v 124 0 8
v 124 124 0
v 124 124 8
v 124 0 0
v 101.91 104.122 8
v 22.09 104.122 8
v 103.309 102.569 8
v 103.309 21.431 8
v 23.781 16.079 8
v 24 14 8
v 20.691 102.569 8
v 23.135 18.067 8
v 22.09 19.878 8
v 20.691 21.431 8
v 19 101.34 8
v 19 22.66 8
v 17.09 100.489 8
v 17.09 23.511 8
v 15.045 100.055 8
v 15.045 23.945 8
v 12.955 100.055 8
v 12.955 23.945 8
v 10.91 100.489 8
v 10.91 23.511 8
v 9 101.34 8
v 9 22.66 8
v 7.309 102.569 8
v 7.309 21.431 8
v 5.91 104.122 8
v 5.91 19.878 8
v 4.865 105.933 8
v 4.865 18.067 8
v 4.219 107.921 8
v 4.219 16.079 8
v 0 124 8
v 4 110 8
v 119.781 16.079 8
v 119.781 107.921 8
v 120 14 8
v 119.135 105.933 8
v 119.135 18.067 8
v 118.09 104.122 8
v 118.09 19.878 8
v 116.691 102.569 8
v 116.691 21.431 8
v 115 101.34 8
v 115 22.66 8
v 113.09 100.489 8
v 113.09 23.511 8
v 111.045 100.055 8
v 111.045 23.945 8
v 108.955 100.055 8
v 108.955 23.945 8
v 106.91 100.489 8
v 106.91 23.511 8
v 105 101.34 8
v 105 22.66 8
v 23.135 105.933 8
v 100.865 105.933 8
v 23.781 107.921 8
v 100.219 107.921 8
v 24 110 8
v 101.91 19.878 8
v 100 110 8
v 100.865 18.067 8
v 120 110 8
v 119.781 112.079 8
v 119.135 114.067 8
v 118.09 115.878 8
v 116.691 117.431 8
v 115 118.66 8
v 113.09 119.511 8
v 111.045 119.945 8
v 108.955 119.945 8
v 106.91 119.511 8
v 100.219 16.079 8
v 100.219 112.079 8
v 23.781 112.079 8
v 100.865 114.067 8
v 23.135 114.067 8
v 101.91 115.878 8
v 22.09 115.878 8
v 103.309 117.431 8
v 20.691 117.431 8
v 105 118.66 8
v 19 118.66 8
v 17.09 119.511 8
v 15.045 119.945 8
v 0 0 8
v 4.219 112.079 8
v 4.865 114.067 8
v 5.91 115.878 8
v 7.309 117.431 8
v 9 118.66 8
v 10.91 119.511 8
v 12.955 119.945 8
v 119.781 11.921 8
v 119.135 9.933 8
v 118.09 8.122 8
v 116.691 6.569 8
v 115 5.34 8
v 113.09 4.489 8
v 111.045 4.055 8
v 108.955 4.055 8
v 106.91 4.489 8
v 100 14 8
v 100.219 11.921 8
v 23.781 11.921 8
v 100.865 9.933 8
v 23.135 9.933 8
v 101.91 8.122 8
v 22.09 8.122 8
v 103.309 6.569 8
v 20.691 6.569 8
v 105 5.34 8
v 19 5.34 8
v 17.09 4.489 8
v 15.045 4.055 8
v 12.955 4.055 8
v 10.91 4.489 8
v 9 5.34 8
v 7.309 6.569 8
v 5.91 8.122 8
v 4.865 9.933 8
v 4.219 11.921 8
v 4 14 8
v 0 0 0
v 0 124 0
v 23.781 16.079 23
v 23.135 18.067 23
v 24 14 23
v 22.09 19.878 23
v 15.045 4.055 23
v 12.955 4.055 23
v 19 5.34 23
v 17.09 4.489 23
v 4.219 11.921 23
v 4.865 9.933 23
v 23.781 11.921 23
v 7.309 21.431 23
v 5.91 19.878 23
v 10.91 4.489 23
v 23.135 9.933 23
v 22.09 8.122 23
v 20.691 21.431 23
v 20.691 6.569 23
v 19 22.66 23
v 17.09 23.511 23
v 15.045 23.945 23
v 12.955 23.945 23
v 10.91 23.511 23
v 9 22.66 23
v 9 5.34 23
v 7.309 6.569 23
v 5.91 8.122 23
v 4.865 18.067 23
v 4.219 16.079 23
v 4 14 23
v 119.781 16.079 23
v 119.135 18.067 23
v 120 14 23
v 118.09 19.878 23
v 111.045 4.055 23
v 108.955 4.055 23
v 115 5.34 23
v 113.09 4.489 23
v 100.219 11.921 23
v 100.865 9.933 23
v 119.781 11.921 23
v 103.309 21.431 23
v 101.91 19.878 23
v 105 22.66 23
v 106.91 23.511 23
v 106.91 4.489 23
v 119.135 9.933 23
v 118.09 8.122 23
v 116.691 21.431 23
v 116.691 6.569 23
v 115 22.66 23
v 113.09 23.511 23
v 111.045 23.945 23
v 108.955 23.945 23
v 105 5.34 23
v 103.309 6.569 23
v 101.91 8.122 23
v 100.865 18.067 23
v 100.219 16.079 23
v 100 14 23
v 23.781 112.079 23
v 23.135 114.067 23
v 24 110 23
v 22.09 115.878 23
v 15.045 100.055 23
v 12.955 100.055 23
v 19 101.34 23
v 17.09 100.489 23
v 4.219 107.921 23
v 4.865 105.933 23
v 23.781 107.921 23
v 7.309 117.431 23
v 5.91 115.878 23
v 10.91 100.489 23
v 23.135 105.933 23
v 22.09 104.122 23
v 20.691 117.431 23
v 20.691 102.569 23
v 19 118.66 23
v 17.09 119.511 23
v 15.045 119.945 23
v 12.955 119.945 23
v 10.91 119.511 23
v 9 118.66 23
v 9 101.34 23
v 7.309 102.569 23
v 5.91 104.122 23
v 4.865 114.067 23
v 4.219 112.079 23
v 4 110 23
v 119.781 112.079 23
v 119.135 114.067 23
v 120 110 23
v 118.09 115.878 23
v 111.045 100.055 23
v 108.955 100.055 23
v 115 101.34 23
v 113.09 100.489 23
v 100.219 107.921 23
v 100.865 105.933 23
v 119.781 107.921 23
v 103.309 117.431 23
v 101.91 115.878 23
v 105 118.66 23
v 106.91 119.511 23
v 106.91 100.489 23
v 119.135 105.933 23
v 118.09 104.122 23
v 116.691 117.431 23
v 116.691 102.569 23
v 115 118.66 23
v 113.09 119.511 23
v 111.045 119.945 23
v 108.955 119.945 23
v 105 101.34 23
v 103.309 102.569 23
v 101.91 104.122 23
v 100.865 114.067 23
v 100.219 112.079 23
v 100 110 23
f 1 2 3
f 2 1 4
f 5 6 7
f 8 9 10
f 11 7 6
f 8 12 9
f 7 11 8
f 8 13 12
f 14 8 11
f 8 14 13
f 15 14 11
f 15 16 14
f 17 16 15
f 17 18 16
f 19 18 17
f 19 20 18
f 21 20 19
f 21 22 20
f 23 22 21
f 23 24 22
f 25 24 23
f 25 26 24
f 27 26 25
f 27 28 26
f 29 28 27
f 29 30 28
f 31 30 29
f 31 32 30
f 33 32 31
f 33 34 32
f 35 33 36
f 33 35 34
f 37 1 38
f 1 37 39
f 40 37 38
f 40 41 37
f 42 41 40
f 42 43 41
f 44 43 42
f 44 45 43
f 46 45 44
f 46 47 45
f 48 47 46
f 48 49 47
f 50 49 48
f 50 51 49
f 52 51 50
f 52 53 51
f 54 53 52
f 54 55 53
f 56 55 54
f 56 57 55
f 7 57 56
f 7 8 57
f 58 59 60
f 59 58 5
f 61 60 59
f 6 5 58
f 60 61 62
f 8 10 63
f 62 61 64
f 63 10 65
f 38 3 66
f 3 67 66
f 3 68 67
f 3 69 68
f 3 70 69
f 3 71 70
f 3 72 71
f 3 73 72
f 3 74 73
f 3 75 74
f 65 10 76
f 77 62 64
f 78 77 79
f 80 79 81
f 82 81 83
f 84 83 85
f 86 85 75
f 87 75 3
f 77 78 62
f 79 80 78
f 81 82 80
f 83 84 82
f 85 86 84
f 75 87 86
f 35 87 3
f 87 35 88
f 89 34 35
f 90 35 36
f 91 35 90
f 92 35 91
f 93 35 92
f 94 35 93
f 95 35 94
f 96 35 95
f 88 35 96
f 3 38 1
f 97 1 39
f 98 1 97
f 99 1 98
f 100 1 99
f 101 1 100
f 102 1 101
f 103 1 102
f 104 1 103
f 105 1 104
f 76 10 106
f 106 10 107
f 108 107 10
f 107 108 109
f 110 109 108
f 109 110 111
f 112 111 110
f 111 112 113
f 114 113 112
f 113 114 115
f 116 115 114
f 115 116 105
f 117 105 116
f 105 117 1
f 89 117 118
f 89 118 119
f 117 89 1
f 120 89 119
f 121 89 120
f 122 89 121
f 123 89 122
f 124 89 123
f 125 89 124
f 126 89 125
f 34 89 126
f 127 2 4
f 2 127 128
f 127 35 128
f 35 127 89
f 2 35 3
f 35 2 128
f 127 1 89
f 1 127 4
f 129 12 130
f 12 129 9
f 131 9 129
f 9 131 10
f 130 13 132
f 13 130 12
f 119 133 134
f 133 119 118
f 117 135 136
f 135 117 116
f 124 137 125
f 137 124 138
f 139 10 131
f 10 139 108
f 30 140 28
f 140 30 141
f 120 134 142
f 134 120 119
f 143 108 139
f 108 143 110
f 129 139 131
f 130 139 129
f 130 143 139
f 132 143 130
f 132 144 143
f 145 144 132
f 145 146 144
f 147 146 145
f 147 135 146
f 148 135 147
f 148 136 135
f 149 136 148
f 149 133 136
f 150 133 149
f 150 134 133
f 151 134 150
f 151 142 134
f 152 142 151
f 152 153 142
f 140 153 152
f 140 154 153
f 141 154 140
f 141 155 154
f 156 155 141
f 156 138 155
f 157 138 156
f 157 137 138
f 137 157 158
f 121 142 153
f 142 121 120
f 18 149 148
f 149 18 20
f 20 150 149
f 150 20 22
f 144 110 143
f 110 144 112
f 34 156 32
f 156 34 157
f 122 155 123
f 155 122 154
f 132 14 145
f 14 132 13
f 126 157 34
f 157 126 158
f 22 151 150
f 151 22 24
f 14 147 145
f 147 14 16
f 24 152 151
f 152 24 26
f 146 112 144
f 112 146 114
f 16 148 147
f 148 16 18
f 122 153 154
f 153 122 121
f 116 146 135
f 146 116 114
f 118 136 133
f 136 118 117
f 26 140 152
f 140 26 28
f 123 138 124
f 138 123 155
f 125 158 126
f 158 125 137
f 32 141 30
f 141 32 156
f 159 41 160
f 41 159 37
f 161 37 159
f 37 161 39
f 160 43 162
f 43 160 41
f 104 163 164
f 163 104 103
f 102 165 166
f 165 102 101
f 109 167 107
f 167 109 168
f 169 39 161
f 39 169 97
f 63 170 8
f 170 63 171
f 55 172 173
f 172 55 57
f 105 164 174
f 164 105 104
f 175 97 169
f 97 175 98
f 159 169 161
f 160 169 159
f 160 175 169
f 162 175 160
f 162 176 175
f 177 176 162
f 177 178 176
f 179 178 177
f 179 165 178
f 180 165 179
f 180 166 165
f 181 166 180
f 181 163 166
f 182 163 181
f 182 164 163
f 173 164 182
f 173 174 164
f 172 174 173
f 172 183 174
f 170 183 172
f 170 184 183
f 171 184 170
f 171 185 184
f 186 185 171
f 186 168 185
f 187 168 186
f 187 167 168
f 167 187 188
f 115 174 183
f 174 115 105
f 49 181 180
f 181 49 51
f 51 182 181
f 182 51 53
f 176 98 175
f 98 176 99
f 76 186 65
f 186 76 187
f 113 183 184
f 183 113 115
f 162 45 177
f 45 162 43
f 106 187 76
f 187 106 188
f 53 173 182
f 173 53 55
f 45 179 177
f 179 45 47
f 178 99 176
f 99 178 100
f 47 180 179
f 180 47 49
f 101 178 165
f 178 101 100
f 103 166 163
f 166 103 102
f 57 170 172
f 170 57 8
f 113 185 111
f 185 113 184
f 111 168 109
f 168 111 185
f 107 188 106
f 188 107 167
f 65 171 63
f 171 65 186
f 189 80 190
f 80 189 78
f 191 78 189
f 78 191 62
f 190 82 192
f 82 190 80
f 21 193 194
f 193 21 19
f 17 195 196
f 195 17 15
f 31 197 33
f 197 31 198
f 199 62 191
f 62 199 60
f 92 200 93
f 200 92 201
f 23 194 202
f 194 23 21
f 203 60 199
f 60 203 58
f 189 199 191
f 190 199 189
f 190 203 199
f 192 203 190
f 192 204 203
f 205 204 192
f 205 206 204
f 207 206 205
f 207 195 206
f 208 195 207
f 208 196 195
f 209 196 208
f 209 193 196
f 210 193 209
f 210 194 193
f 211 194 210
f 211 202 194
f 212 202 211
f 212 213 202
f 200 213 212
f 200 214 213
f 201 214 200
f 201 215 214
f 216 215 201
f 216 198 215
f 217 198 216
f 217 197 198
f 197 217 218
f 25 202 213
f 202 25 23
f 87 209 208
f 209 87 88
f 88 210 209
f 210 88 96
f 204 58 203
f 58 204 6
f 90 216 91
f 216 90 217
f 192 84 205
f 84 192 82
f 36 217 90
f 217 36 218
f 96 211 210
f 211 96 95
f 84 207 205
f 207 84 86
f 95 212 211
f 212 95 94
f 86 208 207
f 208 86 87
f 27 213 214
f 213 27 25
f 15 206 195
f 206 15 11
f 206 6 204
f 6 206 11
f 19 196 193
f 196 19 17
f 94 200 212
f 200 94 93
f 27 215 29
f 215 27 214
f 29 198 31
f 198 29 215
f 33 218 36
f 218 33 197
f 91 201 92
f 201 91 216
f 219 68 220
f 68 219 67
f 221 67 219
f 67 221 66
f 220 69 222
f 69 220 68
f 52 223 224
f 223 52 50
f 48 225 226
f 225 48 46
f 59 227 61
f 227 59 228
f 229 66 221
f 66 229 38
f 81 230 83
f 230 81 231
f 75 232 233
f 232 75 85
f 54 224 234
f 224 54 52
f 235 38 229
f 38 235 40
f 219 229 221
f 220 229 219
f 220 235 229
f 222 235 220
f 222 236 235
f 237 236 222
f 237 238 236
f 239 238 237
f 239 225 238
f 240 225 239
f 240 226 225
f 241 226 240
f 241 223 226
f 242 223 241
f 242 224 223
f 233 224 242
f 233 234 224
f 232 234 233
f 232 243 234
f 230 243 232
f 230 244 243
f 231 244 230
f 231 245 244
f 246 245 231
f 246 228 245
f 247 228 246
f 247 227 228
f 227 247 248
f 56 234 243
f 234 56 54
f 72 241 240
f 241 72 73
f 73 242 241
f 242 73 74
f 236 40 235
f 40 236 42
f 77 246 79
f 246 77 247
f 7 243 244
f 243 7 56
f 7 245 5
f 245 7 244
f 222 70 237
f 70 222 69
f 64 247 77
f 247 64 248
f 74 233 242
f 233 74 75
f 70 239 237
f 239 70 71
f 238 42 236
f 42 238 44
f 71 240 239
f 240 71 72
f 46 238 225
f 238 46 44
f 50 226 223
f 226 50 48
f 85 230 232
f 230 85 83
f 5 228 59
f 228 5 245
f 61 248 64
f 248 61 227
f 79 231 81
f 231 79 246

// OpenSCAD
cube([124,124,8]);

// big circles
translate([14,14,0]) cylinder(23,10,10);
translate([124-14,14,0]) cylinder(23,10,10);
translate([14,124-14,0]) cylinder(23,10,10);
translate([124-14,124-14,0]) cylinder(23,10,10);

// sticks
//
